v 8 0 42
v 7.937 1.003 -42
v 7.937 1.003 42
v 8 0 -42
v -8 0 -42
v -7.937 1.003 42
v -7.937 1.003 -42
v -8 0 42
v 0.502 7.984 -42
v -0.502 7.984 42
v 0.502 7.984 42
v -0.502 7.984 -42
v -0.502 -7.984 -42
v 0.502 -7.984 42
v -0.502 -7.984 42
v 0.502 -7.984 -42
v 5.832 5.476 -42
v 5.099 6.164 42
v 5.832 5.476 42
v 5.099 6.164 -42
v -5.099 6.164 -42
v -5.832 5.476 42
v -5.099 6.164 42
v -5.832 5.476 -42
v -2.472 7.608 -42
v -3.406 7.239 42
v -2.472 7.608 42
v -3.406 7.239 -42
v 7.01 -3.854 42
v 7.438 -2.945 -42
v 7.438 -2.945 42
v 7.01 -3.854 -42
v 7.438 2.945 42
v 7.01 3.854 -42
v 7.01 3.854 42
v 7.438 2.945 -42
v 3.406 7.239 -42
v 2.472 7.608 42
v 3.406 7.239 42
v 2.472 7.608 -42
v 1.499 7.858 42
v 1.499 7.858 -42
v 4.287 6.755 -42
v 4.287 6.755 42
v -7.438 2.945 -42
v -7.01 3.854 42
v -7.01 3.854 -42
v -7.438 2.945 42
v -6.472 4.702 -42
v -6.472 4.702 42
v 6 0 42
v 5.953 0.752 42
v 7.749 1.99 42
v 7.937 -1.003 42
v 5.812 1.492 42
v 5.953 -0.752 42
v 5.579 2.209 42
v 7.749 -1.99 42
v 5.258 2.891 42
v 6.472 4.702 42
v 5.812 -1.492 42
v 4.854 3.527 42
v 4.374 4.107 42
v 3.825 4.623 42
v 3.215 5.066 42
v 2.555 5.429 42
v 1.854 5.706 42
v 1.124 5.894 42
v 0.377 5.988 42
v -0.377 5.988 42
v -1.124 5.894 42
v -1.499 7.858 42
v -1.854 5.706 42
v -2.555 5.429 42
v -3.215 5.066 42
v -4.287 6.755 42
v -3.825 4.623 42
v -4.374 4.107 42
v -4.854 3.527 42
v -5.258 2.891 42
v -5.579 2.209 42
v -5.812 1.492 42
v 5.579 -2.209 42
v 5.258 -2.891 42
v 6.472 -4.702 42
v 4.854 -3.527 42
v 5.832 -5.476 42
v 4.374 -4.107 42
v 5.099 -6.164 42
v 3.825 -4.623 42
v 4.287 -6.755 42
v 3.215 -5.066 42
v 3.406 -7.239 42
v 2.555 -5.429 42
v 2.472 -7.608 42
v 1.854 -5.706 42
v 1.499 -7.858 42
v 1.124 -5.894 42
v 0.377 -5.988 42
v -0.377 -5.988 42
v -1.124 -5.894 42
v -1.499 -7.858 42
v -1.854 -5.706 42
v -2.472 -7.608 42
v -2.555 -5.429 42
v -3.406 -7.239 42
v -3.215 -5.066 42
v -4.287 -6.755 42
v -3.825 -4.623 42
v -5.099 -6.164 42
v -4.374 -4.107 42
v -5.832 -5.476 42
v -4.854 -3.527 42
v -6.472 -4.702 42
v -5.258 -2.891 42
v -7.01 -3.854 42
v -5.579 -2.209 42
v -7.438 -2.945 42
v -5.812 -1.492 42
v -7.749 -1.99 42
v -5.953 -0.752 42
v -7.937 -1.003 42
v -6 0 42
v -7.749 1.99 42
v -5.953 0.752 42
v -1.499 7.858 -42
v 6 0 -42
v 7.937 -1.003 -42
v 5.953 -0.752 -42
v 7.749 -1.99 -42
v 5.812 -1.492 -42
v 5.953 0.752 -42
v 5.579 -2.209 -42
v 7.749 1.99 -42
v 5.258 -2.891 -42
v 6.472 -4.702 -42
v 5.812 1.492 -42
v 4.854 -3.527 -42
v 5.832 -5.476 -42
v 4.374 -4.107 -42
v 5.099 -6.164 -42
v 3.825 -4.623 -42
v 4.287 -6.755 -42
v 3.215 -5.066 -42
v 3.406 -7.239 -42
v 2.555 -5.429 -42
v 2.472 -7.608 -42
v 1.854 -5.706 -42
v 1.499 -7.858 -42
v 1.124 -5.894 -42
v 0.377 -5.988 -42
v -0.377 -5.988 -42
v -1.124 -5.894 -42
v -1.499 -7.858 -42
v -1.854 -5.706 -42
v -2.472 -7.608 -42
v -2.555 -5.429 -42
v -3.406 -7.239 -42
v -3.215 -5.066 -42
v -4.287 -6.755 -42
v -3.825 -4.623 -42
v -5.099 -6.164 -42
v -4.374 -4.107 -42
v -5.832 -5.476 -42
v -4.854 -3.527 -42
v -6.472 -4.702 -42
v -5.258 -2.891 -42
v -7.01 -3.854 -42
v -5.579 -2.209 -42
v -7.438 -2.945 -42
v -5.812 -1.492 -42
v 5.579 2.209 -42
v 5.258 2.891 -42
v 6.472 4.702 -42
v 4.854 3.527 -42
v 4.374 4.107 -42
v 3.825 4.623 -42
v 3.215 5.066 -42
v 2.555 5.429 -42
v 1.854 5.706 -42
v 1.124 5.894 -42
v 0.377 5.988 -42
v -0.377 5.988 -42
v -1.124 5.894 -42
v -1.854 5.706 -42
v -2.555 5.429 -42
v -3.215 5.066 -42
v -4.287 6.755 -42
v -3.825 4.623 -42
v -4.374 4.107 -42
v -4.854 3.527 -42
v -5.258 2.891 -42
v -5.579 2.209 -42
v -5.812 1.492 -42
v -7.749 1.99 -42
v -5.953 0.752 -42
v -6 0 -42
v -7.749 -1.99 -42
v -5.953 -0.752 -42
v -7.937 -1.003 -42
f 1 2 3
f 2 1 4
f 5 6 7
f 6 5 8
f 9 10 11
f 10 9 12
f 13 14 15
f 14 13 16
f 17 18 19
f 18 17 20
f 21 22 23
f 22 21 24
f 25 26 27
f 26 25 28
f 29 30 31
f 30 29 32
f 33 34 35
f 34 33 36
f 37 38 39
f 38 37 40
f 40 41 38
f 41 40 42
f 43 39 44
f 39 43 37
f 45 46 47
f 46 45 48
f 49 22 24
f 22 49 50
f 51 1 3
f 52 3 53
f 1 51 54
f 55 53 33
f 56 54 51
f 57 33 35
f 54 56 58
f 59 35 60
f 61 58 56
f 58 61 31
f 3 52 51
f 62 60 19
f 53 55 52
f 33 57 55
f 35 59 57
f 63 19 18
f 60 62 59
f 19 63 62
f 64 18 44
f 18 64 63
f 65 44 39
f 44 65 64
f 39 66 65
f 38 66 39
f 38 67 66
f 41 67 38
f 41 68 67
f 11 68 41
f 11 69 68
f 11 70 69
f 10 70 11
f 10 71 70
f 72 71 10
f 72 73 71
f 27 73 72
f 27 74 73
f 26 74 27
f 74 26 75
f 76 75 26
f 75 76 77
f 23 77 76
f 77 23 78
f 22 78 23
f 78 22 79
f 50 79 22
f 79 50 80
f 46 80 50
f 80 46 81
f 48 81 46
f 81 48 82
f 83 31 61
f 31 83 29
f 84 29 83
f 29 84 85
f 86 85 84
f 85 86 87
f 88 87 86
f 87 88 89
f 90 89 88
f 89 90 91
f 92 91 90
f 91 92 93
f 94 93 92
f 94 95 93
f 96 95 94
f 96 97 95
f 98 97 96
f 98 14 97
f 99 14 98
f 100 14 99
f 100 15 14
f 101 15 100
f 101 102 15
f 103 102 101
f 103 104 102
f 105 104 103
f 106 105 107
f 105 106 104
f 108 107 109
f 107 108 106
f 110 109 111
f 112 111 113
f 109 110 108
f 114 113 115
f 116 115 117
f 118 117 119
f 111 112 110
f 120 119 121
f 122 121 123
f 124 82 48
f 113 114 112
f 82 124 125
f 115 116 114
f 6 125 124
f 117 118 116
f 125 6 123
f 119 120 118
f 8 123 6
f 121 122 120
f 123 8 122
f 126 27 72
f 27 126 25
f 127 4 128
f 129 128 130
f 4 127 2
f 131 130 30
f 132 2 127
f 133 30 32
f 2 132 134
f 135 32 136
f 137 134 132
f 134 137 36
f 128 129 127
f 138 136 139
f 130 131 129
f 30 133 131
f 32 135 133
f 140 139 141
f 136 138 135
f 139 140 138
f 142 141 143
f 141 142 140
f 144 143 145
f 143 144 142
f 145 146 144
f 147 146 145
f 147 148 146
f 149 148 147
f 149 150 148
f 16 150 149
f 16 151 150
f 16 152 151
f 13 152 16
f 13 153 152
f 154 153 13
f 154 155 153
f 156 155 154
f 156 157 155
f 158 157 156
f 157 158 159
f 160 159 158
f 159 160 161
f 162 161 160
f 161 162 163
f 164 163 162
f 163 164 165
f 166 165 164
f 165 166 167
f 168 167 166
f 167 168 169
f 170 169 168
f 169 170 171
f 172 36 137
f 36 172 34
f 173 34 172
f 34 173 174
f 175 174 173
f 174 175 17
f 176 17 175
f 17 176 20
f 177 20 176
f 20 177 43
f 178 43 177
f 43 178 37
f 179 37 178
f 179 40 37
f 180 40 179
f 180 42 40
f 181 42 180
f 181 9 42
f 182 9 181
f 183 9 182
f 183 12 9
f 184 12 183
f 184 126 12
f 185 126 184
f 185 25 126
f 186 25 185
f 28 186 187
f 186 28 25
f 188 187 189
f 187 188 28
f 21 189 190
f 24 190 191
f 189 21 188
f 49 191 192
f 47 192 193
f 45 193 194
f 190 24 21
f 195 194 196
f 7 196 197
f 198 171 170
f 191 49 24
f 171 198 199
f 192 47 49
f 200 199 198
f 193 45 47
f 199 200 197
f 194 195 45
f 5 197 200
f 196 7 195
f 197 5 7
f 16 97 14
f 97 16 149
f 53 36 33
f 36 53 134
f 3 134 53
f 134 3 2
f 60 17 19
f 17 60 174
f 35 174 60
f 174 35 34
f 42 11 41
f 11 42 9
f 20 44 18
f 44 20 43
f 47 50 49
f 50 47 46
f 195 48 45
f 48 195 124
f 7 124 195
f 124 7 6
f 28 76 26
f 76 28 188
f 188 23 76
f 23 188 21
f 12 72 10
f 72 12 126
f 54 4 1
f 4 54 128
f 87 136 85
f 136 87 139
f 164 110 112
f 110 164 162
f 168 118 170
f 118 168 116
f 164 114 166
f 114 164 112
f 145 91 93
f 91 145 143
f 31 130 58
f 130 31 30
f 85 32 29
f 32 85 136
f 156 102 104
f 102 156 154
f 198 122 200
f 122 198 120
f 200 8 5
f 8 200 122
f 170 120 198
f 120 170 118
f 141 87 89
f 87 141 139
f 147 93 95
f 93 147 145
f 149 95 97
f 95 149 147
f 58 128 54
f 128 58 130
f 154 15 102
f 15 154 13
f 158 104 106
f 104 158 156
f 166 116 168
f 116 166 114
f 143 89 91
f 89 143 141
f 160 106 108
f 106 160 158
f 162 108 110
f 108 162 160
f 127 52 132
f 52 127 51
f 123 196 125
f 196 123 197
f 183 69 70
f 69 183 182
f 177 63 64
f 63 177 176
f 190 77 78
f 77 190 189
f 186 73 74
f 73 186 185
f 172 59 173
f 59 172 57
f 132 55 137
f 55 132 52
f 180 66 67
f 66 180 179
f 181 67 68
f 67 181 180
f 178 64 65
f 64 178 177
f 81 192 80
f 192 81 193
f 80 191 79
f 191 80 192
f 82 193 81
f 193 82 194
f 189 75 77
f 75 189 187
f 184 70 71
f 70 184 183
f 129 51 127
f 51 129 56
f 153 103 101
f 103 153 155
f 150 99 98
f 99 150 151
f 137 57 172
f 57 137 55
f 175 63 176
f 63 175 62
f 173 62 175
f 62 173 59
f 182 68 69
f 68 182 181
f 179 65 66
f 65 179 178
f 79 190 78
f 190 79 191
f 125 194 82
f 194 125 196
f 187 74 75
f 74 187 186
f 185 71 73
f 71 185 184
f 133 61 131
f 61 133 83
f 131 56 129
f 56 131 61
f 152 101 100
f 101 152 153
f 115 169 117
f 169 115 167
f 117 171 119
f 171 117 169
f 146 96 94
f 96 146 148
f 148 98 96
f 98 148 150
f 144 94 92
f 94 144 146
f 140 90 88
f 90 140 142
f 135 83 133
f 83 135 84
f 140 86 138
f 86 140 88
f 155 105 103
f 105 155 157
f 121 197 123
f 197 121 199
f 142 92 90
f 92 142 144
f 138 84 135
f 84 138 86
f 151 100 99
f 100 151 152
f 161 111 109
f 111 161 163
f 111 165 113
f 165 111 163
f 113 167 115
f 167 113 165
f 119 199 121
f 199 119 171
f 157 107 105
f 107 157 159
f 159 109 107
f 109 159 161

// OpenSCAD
$fn = 50;


difference() {
	union() {
		translate(v = [0, 0, -42.0000000000]) {
			cylinder(h = 84, r = 8.0000000000);
		}
	}
	union() {
		translate(v = [0, 0, -100.0000000000]) {
			cylinder(h = 200, r = 6);
		}
	}
}
